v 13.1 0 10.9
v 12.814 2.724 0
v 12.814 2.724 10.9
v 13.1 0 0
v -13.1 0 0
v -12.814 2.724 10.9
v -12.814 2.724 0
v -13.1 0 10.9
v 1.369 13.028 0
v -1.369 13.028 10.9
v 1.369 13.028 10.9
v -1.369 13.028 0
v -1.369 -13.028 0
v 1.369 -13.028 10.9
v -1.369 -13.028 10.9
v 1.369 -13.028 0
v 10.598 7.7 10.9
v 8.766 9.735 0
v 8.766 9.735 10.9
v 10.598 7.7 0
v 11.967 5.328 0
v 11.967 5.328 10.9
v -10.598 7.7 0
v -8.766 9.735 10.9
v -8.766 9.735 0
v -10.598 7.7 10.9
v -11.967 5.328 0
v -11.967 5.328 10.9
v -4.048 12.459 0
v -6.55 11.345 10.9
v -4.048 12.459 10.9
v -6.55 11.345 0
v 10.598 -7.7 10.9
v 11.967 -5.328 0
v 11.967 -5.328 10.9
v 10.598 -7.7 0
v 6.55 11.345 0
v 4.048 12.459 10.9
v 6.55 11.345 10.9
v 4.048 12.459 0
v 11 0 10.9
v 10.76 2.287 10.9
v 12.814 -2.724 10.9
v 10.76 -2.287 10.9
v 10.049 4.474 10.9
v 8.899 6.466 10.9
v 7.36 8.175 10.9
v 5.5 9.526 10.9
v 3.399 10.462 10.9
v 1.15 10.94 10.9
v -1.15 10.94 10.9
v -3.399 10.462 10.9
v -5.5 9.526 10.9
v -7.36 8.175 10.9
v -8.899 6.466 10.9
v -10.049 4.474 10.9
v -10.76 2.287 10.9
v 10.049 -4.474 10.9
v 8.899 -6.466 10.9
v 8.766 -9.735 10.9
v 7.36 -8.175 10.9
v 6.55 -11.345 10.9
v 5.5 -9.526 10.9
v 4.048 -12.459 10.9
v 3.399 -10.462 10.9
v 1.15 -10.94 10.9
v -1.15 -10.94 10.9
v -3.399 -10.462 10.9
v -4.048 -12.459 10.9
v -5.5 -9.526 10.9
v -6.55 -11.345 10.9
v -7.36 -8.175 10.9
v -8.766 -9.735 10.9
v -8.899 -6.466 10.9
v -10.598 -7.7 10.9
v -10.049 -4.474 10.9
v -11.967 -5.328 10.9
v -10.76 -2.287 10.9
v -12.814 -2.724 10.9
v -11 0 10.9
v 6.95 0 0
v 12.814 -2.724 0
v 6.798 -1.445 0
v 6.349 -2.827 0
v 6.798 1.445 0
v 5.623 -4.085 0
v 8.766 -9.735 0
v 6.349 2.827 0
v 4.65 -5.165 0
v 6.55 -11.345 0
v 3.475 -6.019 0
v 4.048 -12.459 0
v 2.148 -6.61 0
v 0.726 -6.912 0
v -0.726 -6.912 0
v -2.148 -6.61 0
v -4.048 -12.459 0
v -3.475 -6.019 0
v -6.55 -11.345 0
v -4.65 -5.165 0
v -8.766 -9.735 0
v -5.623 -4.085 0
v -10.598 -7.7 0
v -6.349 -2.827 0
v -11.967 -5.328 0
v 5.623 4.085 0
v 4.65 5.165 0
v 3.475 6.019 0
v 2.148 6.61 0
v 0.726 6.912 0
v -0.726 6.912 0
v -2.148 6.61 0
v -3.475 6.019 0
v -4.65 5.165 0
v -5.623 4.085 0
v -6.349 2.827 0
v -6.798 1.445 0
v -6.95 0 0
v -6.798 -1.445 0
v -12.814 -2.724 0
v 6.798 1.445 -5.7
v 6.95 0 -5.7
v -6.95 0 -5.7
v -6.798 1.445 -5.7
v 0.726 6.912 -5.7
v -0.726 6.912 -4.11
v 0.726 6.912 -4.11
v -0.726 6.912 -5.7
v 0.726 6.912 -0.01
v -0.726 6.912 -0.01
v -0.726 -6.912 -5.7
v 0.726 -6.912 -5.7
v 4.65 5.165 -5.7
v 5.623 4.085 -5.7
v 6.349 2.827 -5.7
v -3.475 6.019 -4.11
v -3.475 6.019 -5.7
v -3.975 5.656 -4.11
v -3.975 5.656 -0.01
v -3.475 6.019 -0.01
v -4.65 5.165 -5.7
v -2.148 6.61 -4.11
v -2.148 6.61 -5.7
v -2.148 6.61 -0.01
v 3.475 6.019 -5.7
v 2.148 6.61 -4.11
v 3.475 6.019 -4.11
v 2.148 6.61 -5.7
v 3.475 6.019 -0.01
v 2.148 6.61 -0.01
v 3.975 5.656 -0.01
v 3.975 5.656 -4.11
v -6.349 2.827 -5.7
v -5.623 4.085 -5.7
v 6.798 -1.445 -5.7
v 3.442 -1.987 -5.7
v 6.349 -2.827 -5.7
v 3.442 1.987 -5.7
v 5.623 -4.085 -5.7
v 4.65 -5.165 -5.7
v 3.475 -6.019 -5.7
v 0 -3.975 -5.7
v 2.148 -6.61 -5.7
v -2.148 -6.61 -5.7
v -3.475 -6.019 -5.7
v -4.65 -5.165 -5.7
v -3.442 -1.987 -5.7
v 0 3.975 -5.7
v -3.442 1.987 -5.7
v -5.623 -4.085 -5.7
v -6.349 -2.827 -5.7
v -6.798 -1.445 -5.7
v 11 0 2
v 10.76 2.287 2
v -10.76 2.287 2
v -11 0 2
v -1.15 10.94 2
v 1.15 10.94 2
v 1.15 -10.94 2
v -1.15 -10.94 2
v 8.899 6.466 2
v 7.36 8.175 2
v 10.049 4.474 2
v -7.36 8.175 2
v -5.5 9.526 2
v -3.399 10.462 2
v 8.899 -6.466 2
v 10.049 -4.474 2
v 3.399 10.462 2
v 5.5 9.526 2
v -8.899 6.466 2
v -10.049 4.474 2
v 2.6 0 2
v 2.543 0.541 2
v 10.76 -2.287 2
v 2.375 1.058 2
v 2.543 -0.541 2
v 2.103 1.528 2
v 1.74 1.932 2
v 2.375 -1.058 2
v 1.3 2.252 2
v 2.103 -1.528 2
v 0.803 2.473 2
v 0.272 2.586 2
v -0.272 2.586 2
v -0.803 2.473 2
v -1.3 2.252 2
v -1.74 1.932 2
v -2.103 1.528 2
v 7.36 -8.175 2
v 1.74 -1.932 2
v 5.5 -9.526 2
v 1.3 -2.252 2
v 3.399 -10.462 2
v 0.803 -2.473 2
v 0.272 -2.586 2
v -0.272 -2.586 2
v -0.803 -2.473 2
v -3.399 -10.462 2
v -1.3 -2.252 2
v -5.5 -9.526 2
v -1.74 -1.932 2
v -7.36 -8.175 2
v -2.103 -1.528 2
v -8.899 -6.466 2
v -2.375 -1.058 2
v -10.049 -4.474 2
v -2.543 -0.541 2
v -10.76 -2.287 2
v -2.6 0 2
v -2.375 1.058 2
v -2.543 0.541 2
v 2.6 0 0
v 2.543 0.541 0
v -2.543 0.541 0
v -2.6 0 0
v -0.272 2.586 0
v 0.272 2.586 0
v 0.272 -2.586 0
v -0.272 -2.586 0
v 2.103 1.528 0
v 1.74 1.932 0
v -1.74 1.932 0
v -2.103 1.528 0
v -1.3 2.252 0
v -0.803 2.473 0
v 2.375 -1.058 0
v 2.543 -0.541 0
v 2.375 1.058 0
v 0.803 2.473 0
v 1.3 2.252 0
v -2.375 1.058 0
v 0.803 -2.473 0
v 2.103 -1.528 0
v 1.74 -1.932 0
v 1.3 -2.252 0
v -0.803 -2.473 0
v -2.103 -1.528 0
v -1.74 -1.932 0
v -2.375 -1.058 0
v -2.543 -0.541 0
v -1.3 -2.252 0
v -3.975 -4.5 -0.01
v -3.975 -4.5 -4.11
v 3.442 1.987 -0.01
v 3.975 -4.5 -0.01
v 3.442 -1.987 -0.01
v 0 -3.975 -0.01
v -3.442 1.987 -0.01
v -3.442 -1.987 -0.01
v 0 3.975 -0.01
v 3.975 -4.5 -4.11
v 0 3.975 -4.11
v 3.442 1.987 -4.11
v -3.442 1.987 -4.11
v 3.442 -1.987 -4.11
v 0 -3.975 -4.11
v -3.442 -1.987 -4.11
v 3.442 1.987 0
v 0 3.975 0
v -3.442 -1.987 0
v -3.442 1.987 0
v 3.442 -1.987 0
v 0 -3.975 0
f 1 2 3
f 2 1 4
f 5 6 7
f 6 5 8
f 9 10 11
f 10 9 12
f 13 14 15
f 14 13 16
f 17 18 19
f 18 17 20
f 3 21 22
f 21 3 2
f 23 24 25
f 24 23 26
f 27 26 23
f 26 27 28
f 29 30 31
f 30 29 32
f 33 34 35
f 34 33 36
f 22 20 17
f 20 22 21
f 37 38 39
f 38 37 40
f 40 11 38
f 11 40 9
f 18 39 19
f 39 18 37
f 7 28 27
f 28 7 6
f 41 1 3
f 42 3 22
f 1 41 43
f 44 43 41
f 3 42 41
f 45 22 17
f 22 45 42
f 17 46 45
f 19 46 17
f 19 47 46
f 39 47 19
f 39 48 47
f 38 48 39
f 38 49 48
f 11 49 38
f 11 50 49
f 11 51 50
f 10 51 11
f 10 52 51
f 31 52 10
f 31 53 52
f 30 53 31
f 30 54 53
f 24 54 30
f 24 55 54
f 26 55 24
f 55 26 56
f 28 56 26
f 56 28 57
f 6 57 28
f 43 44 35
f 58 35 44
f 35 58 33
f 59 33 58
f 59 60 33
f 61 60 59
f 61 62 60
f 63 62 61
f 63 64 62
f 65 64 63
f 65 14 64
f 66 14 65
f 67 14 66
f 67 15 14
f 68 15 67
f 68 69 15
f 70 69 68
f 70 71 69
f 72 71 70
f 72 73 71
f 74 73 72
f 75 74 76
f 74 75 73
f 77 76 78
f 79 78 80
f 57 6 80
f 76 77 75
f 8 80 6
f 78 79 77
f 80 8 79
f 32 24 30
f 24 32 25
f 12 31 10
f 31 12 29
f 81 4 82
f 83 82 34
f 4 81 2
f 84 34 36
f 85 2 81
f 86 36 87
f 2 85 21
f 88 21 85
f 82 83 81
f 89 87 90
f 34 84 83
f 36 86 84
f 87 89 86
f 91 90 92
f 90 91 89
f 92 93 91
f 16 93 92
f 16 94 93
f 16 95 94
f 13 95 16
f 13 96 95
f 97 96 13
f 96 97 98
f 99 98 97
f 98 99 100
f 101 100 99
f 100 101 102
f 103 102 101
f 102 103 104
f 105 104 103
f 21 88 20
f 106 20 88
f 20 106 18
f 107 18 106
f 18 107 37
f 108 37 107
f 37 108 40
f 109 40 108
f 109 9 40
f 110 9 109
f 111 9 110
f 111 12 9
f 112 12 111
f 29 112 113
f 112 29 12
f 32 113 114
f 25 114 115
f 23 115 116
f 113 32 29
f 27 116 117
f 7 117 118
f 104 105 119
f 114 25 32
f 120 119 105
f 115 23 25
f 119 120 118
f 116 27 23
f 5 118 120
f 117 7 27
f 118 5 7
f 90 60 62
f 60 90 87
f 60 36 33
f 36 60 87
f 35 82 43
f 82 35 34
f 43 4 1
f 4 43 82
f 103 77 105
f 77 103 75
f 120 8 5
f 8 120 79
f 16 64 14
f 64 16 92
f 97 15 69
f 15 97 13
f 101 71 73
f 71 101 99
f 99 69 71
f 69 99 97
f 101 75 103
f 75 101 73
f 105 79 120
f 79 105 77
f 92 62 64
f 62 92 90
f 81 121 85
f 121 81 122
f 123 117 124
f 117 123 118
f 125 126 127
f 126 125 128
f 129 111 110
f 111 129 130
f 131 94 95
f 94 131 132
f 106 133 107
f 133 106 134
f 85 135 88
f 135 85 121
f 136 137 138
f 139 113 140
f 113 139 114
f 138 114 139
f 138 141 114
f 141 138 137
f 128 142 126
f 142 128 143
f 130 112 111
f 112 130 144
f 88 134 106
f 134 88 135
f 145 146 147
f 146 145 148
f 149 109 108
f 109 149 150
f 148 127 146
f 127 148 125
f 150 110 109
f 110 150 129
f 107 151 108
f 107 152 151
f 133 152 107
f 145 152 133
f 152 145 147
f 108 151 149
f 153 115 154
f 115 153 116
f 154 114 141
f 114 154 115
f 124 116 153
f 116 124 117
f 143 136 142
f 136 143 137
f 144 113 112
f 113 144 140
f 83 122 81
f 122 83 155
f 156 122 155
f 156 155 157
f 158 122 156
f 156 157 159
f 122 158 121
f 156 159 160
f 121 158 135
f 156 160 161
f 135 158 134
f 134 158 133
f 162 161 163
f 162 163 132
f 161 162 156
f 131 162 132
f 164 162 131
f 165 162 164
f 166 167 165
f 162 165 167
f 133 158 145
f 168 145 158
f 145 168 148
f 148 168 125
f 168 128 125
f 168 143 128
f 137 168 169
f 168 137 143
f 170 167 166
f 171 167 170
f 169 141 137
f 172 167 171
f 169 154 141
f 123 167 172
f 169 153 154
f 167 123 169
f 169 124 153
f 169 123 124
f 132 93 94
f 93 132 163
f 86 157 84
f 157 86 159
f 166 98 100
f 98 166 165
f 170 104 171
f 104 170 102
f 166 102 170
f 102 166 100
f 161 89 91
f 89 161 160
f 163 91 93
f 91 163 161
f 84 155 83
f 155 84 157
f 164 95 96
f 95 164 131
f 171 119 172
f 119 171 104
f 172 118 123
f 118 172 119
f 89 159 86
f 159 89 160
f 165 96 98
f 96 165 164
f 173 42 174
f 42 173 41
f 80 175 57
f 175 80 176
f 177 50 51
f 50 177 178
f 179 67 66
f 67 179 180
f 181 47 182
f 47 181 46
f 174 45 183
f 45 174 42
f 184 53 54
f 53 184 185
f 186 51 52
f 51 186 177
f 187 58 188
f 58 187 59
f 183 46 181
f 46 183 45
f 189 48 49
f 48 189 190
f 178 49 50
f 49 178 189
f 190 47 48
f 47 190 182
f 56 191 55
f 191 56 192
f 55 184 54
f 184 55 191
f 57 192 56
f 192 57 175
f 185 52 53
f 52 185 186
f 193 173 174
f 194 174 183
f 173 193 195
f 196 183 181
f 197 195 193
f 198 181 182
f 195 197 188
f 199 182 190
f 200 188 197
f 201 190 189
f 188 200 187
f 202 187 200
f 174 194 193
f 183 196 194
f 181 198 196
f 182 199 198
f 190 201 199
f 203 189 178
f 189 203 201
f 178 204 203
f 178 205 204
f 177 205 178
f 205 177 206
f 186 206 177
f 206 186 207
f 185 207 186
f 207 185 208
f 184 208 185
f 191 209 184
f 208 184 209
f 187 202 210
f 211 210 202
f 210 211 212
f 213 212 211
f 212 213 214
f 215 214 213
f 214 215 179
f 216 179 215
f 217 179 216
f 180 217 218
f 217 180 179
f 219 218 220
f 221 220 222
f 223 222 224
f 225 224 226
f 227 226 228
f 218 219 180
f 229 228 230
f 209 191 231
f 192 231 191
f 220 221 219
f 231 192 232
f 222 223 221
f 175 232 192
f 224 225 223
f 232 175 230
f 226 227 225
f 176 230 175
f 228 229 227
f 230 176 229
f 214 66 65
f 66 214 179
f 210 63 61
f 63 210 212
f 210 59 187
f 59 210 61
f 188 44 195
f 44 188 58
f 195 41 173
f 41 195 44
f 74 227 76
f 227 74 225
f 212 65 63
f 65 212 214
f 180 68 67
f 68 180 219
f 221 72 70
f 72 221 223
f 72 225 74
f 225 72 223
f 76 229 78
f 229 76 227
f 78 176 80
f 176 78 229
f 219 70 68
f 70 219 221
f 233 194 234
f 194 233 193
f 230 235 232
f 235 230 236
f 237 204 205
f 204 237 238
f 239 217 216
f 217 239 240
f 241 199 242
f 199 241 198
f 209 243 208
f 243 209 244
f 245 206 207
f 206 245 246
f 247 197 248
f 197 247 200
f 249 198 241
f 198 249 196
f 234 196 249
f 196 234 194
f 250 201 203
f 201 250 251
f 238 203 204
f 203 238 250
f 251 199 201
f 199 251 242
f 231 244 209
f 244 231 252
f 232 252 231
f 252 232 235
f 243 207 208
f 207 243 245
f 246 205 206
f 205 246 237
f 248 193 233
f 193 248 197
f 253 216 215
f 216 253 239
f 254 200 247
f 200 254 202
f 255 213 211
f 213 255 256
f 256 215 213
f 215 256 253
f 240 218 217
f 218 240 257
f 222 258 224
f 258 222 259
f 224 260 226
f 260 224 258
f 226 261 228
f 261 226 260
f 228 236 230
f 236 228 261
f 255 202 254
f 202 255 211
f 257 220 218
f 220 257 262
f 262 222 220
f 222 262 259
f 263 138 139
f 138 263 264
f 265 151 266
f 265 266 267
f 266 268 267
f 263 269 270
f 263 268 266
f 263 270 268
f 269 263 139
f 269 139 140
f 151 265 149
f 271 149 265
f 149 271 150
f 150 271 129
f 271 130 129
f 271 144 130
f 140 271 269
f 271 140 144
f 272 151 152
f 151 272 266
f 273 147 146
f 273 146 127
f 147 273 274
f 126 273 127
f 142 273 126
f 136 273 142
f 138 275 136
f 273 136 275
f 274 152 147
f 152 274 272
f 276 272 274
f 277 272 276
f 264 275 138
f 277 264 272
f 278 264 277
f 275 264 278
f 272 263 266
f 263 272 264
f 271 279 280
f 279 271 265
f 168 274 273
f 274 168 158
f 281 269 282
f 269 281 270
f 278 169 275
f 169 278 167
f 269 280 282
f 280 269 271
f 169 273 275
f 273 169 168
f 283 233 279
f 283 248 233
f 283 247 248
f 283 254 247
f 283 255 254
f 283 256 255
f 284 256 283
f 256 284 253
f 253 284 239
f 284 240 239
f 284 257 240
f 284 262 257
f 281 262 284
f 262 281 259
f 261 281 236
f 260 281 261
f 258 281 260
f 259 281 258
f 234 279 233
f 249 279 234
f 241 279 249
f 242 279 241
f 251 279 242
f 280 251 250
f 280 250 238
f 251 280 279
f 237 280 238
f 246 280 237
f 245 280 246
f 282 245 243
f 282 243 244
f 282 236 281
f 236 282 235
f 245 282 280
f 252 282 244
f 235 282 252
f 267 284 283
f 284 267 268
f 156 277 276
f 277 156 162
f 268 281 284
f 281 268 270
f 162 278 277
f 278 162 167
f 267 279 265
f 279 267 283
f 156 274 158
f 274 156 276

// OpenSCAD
tol = 0.2;
$fn=30;


pipeD = 21.8;

wallT = 2;
screwD = 5;
nutW = 7.95;
nutL = 9;
nutH= 3.9;//5.75;
holderH = nutH+wallT;

difference(){
union(){
cylinder(d=pipeD+wallT*2+2*tol,h=holderH+5);
translate([0,0,-holderH+tol])
cylinder(d=nutL/2+screwD+wallT*2+2*tol,h=holderH);
}//end union


translate([0,0,wallT]){
cylinder(d=pipeD+tol,h=holderH+5);
}//end translate
translate([0,0,-holderH+tol-2])
cylinder(d=screwD+tol,h=holderH+10);


translate([-nutW/2,-nutL/2,-nutH-tol-0.01]){

cube([nutW,nutL+10,nutH+tol]);
}
translate([0,0,-nutH-10]){
    rotate([0,0,30]){
cylinder($fn=6,d=nutW,h=nutH+10);
    }//end rotate
}//end translate
}//end difference
